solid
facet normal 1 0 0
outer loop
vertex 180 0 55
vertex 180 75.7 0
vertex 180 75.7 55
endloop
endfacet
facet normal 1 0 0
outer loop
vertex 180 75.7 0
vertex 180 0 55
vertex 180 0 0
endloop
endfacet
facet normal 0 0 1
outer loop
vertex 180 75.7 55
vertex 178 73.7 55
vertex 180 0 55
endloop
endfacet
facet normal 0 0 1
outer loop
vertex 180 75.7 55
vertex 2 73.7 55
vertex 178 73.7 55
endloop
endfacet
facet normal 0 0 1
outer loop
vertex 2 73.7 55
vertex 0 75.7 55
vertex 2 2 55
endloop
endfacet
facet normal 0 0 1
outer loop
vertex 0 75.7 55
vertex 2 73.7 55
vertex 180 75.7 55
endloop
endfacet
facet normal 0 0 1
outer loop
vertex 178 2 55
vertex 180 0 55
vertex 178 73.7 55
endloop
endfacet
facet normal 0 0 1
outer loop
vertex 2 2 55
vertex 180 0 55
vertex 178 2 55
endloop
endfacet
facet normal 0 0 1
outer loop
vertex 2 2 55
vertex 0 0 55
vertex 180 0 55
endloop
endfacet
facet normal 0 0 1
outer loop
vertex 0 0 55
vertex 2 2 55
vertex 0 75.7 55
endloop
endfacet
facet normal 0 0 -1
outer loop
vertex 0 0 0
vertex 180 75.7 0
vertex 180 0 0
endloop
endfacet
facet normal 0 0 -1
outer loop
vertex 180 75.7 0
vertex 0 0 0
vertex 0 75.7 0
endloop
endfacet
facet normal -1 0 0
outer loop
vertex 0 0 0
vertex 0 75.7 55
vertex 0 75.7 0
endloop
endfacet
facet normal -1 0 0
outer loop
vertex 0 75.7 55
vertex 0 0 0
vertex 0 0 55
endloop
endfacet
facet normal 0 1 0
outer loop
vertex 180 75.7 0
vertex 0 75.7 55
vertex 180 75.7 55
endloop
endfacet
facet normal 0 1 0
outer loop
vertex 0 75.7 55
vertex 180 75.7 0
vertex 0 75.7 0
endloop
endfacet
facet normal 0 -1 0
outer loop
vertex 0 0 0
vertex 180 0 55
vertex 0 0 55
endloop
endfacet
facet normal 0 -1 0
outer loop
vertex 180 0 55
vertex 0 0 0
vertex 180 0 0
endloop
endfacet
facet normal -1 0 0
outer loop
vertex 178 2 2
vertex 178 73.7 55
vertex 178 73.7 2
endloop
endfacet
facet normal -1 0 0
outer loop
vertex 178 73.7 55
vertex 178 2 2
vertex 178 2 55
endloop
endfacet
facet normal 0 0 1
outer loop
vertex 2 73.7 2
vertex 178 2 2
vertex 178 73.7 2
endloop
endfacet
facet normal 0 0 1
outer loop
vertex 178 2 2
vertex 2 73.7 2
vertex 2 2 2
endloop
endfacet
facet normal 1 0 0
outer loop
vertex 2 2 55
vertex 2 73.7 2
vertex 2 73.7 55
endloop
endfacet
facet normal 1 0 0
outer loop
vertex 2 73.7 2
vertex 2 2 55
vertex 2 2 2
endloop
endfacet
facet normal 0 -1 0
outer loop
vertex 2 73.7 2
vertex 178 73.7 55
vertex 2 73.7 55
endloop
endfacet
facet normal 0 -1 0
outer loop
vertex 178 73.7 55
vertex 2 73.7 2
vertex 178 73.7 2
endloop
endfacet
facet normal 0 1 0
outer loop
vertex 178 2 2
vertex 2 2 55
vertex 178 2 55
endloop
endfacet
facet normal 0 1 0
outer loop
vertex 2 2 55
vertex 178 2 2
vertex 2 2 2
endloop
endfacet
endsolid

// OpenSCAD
// TANAHAKO: small cutlery box
// Print two copies.
width = 180;
depth = 75.7;
height = 55;
wall = 2;
base = 2;

difference() {
    cube([width, depth, height]);
    translate([wall, wall, base])
        cube([width - 2 * wall, depth - 2 * wall, height - base + 0.01]);
}
